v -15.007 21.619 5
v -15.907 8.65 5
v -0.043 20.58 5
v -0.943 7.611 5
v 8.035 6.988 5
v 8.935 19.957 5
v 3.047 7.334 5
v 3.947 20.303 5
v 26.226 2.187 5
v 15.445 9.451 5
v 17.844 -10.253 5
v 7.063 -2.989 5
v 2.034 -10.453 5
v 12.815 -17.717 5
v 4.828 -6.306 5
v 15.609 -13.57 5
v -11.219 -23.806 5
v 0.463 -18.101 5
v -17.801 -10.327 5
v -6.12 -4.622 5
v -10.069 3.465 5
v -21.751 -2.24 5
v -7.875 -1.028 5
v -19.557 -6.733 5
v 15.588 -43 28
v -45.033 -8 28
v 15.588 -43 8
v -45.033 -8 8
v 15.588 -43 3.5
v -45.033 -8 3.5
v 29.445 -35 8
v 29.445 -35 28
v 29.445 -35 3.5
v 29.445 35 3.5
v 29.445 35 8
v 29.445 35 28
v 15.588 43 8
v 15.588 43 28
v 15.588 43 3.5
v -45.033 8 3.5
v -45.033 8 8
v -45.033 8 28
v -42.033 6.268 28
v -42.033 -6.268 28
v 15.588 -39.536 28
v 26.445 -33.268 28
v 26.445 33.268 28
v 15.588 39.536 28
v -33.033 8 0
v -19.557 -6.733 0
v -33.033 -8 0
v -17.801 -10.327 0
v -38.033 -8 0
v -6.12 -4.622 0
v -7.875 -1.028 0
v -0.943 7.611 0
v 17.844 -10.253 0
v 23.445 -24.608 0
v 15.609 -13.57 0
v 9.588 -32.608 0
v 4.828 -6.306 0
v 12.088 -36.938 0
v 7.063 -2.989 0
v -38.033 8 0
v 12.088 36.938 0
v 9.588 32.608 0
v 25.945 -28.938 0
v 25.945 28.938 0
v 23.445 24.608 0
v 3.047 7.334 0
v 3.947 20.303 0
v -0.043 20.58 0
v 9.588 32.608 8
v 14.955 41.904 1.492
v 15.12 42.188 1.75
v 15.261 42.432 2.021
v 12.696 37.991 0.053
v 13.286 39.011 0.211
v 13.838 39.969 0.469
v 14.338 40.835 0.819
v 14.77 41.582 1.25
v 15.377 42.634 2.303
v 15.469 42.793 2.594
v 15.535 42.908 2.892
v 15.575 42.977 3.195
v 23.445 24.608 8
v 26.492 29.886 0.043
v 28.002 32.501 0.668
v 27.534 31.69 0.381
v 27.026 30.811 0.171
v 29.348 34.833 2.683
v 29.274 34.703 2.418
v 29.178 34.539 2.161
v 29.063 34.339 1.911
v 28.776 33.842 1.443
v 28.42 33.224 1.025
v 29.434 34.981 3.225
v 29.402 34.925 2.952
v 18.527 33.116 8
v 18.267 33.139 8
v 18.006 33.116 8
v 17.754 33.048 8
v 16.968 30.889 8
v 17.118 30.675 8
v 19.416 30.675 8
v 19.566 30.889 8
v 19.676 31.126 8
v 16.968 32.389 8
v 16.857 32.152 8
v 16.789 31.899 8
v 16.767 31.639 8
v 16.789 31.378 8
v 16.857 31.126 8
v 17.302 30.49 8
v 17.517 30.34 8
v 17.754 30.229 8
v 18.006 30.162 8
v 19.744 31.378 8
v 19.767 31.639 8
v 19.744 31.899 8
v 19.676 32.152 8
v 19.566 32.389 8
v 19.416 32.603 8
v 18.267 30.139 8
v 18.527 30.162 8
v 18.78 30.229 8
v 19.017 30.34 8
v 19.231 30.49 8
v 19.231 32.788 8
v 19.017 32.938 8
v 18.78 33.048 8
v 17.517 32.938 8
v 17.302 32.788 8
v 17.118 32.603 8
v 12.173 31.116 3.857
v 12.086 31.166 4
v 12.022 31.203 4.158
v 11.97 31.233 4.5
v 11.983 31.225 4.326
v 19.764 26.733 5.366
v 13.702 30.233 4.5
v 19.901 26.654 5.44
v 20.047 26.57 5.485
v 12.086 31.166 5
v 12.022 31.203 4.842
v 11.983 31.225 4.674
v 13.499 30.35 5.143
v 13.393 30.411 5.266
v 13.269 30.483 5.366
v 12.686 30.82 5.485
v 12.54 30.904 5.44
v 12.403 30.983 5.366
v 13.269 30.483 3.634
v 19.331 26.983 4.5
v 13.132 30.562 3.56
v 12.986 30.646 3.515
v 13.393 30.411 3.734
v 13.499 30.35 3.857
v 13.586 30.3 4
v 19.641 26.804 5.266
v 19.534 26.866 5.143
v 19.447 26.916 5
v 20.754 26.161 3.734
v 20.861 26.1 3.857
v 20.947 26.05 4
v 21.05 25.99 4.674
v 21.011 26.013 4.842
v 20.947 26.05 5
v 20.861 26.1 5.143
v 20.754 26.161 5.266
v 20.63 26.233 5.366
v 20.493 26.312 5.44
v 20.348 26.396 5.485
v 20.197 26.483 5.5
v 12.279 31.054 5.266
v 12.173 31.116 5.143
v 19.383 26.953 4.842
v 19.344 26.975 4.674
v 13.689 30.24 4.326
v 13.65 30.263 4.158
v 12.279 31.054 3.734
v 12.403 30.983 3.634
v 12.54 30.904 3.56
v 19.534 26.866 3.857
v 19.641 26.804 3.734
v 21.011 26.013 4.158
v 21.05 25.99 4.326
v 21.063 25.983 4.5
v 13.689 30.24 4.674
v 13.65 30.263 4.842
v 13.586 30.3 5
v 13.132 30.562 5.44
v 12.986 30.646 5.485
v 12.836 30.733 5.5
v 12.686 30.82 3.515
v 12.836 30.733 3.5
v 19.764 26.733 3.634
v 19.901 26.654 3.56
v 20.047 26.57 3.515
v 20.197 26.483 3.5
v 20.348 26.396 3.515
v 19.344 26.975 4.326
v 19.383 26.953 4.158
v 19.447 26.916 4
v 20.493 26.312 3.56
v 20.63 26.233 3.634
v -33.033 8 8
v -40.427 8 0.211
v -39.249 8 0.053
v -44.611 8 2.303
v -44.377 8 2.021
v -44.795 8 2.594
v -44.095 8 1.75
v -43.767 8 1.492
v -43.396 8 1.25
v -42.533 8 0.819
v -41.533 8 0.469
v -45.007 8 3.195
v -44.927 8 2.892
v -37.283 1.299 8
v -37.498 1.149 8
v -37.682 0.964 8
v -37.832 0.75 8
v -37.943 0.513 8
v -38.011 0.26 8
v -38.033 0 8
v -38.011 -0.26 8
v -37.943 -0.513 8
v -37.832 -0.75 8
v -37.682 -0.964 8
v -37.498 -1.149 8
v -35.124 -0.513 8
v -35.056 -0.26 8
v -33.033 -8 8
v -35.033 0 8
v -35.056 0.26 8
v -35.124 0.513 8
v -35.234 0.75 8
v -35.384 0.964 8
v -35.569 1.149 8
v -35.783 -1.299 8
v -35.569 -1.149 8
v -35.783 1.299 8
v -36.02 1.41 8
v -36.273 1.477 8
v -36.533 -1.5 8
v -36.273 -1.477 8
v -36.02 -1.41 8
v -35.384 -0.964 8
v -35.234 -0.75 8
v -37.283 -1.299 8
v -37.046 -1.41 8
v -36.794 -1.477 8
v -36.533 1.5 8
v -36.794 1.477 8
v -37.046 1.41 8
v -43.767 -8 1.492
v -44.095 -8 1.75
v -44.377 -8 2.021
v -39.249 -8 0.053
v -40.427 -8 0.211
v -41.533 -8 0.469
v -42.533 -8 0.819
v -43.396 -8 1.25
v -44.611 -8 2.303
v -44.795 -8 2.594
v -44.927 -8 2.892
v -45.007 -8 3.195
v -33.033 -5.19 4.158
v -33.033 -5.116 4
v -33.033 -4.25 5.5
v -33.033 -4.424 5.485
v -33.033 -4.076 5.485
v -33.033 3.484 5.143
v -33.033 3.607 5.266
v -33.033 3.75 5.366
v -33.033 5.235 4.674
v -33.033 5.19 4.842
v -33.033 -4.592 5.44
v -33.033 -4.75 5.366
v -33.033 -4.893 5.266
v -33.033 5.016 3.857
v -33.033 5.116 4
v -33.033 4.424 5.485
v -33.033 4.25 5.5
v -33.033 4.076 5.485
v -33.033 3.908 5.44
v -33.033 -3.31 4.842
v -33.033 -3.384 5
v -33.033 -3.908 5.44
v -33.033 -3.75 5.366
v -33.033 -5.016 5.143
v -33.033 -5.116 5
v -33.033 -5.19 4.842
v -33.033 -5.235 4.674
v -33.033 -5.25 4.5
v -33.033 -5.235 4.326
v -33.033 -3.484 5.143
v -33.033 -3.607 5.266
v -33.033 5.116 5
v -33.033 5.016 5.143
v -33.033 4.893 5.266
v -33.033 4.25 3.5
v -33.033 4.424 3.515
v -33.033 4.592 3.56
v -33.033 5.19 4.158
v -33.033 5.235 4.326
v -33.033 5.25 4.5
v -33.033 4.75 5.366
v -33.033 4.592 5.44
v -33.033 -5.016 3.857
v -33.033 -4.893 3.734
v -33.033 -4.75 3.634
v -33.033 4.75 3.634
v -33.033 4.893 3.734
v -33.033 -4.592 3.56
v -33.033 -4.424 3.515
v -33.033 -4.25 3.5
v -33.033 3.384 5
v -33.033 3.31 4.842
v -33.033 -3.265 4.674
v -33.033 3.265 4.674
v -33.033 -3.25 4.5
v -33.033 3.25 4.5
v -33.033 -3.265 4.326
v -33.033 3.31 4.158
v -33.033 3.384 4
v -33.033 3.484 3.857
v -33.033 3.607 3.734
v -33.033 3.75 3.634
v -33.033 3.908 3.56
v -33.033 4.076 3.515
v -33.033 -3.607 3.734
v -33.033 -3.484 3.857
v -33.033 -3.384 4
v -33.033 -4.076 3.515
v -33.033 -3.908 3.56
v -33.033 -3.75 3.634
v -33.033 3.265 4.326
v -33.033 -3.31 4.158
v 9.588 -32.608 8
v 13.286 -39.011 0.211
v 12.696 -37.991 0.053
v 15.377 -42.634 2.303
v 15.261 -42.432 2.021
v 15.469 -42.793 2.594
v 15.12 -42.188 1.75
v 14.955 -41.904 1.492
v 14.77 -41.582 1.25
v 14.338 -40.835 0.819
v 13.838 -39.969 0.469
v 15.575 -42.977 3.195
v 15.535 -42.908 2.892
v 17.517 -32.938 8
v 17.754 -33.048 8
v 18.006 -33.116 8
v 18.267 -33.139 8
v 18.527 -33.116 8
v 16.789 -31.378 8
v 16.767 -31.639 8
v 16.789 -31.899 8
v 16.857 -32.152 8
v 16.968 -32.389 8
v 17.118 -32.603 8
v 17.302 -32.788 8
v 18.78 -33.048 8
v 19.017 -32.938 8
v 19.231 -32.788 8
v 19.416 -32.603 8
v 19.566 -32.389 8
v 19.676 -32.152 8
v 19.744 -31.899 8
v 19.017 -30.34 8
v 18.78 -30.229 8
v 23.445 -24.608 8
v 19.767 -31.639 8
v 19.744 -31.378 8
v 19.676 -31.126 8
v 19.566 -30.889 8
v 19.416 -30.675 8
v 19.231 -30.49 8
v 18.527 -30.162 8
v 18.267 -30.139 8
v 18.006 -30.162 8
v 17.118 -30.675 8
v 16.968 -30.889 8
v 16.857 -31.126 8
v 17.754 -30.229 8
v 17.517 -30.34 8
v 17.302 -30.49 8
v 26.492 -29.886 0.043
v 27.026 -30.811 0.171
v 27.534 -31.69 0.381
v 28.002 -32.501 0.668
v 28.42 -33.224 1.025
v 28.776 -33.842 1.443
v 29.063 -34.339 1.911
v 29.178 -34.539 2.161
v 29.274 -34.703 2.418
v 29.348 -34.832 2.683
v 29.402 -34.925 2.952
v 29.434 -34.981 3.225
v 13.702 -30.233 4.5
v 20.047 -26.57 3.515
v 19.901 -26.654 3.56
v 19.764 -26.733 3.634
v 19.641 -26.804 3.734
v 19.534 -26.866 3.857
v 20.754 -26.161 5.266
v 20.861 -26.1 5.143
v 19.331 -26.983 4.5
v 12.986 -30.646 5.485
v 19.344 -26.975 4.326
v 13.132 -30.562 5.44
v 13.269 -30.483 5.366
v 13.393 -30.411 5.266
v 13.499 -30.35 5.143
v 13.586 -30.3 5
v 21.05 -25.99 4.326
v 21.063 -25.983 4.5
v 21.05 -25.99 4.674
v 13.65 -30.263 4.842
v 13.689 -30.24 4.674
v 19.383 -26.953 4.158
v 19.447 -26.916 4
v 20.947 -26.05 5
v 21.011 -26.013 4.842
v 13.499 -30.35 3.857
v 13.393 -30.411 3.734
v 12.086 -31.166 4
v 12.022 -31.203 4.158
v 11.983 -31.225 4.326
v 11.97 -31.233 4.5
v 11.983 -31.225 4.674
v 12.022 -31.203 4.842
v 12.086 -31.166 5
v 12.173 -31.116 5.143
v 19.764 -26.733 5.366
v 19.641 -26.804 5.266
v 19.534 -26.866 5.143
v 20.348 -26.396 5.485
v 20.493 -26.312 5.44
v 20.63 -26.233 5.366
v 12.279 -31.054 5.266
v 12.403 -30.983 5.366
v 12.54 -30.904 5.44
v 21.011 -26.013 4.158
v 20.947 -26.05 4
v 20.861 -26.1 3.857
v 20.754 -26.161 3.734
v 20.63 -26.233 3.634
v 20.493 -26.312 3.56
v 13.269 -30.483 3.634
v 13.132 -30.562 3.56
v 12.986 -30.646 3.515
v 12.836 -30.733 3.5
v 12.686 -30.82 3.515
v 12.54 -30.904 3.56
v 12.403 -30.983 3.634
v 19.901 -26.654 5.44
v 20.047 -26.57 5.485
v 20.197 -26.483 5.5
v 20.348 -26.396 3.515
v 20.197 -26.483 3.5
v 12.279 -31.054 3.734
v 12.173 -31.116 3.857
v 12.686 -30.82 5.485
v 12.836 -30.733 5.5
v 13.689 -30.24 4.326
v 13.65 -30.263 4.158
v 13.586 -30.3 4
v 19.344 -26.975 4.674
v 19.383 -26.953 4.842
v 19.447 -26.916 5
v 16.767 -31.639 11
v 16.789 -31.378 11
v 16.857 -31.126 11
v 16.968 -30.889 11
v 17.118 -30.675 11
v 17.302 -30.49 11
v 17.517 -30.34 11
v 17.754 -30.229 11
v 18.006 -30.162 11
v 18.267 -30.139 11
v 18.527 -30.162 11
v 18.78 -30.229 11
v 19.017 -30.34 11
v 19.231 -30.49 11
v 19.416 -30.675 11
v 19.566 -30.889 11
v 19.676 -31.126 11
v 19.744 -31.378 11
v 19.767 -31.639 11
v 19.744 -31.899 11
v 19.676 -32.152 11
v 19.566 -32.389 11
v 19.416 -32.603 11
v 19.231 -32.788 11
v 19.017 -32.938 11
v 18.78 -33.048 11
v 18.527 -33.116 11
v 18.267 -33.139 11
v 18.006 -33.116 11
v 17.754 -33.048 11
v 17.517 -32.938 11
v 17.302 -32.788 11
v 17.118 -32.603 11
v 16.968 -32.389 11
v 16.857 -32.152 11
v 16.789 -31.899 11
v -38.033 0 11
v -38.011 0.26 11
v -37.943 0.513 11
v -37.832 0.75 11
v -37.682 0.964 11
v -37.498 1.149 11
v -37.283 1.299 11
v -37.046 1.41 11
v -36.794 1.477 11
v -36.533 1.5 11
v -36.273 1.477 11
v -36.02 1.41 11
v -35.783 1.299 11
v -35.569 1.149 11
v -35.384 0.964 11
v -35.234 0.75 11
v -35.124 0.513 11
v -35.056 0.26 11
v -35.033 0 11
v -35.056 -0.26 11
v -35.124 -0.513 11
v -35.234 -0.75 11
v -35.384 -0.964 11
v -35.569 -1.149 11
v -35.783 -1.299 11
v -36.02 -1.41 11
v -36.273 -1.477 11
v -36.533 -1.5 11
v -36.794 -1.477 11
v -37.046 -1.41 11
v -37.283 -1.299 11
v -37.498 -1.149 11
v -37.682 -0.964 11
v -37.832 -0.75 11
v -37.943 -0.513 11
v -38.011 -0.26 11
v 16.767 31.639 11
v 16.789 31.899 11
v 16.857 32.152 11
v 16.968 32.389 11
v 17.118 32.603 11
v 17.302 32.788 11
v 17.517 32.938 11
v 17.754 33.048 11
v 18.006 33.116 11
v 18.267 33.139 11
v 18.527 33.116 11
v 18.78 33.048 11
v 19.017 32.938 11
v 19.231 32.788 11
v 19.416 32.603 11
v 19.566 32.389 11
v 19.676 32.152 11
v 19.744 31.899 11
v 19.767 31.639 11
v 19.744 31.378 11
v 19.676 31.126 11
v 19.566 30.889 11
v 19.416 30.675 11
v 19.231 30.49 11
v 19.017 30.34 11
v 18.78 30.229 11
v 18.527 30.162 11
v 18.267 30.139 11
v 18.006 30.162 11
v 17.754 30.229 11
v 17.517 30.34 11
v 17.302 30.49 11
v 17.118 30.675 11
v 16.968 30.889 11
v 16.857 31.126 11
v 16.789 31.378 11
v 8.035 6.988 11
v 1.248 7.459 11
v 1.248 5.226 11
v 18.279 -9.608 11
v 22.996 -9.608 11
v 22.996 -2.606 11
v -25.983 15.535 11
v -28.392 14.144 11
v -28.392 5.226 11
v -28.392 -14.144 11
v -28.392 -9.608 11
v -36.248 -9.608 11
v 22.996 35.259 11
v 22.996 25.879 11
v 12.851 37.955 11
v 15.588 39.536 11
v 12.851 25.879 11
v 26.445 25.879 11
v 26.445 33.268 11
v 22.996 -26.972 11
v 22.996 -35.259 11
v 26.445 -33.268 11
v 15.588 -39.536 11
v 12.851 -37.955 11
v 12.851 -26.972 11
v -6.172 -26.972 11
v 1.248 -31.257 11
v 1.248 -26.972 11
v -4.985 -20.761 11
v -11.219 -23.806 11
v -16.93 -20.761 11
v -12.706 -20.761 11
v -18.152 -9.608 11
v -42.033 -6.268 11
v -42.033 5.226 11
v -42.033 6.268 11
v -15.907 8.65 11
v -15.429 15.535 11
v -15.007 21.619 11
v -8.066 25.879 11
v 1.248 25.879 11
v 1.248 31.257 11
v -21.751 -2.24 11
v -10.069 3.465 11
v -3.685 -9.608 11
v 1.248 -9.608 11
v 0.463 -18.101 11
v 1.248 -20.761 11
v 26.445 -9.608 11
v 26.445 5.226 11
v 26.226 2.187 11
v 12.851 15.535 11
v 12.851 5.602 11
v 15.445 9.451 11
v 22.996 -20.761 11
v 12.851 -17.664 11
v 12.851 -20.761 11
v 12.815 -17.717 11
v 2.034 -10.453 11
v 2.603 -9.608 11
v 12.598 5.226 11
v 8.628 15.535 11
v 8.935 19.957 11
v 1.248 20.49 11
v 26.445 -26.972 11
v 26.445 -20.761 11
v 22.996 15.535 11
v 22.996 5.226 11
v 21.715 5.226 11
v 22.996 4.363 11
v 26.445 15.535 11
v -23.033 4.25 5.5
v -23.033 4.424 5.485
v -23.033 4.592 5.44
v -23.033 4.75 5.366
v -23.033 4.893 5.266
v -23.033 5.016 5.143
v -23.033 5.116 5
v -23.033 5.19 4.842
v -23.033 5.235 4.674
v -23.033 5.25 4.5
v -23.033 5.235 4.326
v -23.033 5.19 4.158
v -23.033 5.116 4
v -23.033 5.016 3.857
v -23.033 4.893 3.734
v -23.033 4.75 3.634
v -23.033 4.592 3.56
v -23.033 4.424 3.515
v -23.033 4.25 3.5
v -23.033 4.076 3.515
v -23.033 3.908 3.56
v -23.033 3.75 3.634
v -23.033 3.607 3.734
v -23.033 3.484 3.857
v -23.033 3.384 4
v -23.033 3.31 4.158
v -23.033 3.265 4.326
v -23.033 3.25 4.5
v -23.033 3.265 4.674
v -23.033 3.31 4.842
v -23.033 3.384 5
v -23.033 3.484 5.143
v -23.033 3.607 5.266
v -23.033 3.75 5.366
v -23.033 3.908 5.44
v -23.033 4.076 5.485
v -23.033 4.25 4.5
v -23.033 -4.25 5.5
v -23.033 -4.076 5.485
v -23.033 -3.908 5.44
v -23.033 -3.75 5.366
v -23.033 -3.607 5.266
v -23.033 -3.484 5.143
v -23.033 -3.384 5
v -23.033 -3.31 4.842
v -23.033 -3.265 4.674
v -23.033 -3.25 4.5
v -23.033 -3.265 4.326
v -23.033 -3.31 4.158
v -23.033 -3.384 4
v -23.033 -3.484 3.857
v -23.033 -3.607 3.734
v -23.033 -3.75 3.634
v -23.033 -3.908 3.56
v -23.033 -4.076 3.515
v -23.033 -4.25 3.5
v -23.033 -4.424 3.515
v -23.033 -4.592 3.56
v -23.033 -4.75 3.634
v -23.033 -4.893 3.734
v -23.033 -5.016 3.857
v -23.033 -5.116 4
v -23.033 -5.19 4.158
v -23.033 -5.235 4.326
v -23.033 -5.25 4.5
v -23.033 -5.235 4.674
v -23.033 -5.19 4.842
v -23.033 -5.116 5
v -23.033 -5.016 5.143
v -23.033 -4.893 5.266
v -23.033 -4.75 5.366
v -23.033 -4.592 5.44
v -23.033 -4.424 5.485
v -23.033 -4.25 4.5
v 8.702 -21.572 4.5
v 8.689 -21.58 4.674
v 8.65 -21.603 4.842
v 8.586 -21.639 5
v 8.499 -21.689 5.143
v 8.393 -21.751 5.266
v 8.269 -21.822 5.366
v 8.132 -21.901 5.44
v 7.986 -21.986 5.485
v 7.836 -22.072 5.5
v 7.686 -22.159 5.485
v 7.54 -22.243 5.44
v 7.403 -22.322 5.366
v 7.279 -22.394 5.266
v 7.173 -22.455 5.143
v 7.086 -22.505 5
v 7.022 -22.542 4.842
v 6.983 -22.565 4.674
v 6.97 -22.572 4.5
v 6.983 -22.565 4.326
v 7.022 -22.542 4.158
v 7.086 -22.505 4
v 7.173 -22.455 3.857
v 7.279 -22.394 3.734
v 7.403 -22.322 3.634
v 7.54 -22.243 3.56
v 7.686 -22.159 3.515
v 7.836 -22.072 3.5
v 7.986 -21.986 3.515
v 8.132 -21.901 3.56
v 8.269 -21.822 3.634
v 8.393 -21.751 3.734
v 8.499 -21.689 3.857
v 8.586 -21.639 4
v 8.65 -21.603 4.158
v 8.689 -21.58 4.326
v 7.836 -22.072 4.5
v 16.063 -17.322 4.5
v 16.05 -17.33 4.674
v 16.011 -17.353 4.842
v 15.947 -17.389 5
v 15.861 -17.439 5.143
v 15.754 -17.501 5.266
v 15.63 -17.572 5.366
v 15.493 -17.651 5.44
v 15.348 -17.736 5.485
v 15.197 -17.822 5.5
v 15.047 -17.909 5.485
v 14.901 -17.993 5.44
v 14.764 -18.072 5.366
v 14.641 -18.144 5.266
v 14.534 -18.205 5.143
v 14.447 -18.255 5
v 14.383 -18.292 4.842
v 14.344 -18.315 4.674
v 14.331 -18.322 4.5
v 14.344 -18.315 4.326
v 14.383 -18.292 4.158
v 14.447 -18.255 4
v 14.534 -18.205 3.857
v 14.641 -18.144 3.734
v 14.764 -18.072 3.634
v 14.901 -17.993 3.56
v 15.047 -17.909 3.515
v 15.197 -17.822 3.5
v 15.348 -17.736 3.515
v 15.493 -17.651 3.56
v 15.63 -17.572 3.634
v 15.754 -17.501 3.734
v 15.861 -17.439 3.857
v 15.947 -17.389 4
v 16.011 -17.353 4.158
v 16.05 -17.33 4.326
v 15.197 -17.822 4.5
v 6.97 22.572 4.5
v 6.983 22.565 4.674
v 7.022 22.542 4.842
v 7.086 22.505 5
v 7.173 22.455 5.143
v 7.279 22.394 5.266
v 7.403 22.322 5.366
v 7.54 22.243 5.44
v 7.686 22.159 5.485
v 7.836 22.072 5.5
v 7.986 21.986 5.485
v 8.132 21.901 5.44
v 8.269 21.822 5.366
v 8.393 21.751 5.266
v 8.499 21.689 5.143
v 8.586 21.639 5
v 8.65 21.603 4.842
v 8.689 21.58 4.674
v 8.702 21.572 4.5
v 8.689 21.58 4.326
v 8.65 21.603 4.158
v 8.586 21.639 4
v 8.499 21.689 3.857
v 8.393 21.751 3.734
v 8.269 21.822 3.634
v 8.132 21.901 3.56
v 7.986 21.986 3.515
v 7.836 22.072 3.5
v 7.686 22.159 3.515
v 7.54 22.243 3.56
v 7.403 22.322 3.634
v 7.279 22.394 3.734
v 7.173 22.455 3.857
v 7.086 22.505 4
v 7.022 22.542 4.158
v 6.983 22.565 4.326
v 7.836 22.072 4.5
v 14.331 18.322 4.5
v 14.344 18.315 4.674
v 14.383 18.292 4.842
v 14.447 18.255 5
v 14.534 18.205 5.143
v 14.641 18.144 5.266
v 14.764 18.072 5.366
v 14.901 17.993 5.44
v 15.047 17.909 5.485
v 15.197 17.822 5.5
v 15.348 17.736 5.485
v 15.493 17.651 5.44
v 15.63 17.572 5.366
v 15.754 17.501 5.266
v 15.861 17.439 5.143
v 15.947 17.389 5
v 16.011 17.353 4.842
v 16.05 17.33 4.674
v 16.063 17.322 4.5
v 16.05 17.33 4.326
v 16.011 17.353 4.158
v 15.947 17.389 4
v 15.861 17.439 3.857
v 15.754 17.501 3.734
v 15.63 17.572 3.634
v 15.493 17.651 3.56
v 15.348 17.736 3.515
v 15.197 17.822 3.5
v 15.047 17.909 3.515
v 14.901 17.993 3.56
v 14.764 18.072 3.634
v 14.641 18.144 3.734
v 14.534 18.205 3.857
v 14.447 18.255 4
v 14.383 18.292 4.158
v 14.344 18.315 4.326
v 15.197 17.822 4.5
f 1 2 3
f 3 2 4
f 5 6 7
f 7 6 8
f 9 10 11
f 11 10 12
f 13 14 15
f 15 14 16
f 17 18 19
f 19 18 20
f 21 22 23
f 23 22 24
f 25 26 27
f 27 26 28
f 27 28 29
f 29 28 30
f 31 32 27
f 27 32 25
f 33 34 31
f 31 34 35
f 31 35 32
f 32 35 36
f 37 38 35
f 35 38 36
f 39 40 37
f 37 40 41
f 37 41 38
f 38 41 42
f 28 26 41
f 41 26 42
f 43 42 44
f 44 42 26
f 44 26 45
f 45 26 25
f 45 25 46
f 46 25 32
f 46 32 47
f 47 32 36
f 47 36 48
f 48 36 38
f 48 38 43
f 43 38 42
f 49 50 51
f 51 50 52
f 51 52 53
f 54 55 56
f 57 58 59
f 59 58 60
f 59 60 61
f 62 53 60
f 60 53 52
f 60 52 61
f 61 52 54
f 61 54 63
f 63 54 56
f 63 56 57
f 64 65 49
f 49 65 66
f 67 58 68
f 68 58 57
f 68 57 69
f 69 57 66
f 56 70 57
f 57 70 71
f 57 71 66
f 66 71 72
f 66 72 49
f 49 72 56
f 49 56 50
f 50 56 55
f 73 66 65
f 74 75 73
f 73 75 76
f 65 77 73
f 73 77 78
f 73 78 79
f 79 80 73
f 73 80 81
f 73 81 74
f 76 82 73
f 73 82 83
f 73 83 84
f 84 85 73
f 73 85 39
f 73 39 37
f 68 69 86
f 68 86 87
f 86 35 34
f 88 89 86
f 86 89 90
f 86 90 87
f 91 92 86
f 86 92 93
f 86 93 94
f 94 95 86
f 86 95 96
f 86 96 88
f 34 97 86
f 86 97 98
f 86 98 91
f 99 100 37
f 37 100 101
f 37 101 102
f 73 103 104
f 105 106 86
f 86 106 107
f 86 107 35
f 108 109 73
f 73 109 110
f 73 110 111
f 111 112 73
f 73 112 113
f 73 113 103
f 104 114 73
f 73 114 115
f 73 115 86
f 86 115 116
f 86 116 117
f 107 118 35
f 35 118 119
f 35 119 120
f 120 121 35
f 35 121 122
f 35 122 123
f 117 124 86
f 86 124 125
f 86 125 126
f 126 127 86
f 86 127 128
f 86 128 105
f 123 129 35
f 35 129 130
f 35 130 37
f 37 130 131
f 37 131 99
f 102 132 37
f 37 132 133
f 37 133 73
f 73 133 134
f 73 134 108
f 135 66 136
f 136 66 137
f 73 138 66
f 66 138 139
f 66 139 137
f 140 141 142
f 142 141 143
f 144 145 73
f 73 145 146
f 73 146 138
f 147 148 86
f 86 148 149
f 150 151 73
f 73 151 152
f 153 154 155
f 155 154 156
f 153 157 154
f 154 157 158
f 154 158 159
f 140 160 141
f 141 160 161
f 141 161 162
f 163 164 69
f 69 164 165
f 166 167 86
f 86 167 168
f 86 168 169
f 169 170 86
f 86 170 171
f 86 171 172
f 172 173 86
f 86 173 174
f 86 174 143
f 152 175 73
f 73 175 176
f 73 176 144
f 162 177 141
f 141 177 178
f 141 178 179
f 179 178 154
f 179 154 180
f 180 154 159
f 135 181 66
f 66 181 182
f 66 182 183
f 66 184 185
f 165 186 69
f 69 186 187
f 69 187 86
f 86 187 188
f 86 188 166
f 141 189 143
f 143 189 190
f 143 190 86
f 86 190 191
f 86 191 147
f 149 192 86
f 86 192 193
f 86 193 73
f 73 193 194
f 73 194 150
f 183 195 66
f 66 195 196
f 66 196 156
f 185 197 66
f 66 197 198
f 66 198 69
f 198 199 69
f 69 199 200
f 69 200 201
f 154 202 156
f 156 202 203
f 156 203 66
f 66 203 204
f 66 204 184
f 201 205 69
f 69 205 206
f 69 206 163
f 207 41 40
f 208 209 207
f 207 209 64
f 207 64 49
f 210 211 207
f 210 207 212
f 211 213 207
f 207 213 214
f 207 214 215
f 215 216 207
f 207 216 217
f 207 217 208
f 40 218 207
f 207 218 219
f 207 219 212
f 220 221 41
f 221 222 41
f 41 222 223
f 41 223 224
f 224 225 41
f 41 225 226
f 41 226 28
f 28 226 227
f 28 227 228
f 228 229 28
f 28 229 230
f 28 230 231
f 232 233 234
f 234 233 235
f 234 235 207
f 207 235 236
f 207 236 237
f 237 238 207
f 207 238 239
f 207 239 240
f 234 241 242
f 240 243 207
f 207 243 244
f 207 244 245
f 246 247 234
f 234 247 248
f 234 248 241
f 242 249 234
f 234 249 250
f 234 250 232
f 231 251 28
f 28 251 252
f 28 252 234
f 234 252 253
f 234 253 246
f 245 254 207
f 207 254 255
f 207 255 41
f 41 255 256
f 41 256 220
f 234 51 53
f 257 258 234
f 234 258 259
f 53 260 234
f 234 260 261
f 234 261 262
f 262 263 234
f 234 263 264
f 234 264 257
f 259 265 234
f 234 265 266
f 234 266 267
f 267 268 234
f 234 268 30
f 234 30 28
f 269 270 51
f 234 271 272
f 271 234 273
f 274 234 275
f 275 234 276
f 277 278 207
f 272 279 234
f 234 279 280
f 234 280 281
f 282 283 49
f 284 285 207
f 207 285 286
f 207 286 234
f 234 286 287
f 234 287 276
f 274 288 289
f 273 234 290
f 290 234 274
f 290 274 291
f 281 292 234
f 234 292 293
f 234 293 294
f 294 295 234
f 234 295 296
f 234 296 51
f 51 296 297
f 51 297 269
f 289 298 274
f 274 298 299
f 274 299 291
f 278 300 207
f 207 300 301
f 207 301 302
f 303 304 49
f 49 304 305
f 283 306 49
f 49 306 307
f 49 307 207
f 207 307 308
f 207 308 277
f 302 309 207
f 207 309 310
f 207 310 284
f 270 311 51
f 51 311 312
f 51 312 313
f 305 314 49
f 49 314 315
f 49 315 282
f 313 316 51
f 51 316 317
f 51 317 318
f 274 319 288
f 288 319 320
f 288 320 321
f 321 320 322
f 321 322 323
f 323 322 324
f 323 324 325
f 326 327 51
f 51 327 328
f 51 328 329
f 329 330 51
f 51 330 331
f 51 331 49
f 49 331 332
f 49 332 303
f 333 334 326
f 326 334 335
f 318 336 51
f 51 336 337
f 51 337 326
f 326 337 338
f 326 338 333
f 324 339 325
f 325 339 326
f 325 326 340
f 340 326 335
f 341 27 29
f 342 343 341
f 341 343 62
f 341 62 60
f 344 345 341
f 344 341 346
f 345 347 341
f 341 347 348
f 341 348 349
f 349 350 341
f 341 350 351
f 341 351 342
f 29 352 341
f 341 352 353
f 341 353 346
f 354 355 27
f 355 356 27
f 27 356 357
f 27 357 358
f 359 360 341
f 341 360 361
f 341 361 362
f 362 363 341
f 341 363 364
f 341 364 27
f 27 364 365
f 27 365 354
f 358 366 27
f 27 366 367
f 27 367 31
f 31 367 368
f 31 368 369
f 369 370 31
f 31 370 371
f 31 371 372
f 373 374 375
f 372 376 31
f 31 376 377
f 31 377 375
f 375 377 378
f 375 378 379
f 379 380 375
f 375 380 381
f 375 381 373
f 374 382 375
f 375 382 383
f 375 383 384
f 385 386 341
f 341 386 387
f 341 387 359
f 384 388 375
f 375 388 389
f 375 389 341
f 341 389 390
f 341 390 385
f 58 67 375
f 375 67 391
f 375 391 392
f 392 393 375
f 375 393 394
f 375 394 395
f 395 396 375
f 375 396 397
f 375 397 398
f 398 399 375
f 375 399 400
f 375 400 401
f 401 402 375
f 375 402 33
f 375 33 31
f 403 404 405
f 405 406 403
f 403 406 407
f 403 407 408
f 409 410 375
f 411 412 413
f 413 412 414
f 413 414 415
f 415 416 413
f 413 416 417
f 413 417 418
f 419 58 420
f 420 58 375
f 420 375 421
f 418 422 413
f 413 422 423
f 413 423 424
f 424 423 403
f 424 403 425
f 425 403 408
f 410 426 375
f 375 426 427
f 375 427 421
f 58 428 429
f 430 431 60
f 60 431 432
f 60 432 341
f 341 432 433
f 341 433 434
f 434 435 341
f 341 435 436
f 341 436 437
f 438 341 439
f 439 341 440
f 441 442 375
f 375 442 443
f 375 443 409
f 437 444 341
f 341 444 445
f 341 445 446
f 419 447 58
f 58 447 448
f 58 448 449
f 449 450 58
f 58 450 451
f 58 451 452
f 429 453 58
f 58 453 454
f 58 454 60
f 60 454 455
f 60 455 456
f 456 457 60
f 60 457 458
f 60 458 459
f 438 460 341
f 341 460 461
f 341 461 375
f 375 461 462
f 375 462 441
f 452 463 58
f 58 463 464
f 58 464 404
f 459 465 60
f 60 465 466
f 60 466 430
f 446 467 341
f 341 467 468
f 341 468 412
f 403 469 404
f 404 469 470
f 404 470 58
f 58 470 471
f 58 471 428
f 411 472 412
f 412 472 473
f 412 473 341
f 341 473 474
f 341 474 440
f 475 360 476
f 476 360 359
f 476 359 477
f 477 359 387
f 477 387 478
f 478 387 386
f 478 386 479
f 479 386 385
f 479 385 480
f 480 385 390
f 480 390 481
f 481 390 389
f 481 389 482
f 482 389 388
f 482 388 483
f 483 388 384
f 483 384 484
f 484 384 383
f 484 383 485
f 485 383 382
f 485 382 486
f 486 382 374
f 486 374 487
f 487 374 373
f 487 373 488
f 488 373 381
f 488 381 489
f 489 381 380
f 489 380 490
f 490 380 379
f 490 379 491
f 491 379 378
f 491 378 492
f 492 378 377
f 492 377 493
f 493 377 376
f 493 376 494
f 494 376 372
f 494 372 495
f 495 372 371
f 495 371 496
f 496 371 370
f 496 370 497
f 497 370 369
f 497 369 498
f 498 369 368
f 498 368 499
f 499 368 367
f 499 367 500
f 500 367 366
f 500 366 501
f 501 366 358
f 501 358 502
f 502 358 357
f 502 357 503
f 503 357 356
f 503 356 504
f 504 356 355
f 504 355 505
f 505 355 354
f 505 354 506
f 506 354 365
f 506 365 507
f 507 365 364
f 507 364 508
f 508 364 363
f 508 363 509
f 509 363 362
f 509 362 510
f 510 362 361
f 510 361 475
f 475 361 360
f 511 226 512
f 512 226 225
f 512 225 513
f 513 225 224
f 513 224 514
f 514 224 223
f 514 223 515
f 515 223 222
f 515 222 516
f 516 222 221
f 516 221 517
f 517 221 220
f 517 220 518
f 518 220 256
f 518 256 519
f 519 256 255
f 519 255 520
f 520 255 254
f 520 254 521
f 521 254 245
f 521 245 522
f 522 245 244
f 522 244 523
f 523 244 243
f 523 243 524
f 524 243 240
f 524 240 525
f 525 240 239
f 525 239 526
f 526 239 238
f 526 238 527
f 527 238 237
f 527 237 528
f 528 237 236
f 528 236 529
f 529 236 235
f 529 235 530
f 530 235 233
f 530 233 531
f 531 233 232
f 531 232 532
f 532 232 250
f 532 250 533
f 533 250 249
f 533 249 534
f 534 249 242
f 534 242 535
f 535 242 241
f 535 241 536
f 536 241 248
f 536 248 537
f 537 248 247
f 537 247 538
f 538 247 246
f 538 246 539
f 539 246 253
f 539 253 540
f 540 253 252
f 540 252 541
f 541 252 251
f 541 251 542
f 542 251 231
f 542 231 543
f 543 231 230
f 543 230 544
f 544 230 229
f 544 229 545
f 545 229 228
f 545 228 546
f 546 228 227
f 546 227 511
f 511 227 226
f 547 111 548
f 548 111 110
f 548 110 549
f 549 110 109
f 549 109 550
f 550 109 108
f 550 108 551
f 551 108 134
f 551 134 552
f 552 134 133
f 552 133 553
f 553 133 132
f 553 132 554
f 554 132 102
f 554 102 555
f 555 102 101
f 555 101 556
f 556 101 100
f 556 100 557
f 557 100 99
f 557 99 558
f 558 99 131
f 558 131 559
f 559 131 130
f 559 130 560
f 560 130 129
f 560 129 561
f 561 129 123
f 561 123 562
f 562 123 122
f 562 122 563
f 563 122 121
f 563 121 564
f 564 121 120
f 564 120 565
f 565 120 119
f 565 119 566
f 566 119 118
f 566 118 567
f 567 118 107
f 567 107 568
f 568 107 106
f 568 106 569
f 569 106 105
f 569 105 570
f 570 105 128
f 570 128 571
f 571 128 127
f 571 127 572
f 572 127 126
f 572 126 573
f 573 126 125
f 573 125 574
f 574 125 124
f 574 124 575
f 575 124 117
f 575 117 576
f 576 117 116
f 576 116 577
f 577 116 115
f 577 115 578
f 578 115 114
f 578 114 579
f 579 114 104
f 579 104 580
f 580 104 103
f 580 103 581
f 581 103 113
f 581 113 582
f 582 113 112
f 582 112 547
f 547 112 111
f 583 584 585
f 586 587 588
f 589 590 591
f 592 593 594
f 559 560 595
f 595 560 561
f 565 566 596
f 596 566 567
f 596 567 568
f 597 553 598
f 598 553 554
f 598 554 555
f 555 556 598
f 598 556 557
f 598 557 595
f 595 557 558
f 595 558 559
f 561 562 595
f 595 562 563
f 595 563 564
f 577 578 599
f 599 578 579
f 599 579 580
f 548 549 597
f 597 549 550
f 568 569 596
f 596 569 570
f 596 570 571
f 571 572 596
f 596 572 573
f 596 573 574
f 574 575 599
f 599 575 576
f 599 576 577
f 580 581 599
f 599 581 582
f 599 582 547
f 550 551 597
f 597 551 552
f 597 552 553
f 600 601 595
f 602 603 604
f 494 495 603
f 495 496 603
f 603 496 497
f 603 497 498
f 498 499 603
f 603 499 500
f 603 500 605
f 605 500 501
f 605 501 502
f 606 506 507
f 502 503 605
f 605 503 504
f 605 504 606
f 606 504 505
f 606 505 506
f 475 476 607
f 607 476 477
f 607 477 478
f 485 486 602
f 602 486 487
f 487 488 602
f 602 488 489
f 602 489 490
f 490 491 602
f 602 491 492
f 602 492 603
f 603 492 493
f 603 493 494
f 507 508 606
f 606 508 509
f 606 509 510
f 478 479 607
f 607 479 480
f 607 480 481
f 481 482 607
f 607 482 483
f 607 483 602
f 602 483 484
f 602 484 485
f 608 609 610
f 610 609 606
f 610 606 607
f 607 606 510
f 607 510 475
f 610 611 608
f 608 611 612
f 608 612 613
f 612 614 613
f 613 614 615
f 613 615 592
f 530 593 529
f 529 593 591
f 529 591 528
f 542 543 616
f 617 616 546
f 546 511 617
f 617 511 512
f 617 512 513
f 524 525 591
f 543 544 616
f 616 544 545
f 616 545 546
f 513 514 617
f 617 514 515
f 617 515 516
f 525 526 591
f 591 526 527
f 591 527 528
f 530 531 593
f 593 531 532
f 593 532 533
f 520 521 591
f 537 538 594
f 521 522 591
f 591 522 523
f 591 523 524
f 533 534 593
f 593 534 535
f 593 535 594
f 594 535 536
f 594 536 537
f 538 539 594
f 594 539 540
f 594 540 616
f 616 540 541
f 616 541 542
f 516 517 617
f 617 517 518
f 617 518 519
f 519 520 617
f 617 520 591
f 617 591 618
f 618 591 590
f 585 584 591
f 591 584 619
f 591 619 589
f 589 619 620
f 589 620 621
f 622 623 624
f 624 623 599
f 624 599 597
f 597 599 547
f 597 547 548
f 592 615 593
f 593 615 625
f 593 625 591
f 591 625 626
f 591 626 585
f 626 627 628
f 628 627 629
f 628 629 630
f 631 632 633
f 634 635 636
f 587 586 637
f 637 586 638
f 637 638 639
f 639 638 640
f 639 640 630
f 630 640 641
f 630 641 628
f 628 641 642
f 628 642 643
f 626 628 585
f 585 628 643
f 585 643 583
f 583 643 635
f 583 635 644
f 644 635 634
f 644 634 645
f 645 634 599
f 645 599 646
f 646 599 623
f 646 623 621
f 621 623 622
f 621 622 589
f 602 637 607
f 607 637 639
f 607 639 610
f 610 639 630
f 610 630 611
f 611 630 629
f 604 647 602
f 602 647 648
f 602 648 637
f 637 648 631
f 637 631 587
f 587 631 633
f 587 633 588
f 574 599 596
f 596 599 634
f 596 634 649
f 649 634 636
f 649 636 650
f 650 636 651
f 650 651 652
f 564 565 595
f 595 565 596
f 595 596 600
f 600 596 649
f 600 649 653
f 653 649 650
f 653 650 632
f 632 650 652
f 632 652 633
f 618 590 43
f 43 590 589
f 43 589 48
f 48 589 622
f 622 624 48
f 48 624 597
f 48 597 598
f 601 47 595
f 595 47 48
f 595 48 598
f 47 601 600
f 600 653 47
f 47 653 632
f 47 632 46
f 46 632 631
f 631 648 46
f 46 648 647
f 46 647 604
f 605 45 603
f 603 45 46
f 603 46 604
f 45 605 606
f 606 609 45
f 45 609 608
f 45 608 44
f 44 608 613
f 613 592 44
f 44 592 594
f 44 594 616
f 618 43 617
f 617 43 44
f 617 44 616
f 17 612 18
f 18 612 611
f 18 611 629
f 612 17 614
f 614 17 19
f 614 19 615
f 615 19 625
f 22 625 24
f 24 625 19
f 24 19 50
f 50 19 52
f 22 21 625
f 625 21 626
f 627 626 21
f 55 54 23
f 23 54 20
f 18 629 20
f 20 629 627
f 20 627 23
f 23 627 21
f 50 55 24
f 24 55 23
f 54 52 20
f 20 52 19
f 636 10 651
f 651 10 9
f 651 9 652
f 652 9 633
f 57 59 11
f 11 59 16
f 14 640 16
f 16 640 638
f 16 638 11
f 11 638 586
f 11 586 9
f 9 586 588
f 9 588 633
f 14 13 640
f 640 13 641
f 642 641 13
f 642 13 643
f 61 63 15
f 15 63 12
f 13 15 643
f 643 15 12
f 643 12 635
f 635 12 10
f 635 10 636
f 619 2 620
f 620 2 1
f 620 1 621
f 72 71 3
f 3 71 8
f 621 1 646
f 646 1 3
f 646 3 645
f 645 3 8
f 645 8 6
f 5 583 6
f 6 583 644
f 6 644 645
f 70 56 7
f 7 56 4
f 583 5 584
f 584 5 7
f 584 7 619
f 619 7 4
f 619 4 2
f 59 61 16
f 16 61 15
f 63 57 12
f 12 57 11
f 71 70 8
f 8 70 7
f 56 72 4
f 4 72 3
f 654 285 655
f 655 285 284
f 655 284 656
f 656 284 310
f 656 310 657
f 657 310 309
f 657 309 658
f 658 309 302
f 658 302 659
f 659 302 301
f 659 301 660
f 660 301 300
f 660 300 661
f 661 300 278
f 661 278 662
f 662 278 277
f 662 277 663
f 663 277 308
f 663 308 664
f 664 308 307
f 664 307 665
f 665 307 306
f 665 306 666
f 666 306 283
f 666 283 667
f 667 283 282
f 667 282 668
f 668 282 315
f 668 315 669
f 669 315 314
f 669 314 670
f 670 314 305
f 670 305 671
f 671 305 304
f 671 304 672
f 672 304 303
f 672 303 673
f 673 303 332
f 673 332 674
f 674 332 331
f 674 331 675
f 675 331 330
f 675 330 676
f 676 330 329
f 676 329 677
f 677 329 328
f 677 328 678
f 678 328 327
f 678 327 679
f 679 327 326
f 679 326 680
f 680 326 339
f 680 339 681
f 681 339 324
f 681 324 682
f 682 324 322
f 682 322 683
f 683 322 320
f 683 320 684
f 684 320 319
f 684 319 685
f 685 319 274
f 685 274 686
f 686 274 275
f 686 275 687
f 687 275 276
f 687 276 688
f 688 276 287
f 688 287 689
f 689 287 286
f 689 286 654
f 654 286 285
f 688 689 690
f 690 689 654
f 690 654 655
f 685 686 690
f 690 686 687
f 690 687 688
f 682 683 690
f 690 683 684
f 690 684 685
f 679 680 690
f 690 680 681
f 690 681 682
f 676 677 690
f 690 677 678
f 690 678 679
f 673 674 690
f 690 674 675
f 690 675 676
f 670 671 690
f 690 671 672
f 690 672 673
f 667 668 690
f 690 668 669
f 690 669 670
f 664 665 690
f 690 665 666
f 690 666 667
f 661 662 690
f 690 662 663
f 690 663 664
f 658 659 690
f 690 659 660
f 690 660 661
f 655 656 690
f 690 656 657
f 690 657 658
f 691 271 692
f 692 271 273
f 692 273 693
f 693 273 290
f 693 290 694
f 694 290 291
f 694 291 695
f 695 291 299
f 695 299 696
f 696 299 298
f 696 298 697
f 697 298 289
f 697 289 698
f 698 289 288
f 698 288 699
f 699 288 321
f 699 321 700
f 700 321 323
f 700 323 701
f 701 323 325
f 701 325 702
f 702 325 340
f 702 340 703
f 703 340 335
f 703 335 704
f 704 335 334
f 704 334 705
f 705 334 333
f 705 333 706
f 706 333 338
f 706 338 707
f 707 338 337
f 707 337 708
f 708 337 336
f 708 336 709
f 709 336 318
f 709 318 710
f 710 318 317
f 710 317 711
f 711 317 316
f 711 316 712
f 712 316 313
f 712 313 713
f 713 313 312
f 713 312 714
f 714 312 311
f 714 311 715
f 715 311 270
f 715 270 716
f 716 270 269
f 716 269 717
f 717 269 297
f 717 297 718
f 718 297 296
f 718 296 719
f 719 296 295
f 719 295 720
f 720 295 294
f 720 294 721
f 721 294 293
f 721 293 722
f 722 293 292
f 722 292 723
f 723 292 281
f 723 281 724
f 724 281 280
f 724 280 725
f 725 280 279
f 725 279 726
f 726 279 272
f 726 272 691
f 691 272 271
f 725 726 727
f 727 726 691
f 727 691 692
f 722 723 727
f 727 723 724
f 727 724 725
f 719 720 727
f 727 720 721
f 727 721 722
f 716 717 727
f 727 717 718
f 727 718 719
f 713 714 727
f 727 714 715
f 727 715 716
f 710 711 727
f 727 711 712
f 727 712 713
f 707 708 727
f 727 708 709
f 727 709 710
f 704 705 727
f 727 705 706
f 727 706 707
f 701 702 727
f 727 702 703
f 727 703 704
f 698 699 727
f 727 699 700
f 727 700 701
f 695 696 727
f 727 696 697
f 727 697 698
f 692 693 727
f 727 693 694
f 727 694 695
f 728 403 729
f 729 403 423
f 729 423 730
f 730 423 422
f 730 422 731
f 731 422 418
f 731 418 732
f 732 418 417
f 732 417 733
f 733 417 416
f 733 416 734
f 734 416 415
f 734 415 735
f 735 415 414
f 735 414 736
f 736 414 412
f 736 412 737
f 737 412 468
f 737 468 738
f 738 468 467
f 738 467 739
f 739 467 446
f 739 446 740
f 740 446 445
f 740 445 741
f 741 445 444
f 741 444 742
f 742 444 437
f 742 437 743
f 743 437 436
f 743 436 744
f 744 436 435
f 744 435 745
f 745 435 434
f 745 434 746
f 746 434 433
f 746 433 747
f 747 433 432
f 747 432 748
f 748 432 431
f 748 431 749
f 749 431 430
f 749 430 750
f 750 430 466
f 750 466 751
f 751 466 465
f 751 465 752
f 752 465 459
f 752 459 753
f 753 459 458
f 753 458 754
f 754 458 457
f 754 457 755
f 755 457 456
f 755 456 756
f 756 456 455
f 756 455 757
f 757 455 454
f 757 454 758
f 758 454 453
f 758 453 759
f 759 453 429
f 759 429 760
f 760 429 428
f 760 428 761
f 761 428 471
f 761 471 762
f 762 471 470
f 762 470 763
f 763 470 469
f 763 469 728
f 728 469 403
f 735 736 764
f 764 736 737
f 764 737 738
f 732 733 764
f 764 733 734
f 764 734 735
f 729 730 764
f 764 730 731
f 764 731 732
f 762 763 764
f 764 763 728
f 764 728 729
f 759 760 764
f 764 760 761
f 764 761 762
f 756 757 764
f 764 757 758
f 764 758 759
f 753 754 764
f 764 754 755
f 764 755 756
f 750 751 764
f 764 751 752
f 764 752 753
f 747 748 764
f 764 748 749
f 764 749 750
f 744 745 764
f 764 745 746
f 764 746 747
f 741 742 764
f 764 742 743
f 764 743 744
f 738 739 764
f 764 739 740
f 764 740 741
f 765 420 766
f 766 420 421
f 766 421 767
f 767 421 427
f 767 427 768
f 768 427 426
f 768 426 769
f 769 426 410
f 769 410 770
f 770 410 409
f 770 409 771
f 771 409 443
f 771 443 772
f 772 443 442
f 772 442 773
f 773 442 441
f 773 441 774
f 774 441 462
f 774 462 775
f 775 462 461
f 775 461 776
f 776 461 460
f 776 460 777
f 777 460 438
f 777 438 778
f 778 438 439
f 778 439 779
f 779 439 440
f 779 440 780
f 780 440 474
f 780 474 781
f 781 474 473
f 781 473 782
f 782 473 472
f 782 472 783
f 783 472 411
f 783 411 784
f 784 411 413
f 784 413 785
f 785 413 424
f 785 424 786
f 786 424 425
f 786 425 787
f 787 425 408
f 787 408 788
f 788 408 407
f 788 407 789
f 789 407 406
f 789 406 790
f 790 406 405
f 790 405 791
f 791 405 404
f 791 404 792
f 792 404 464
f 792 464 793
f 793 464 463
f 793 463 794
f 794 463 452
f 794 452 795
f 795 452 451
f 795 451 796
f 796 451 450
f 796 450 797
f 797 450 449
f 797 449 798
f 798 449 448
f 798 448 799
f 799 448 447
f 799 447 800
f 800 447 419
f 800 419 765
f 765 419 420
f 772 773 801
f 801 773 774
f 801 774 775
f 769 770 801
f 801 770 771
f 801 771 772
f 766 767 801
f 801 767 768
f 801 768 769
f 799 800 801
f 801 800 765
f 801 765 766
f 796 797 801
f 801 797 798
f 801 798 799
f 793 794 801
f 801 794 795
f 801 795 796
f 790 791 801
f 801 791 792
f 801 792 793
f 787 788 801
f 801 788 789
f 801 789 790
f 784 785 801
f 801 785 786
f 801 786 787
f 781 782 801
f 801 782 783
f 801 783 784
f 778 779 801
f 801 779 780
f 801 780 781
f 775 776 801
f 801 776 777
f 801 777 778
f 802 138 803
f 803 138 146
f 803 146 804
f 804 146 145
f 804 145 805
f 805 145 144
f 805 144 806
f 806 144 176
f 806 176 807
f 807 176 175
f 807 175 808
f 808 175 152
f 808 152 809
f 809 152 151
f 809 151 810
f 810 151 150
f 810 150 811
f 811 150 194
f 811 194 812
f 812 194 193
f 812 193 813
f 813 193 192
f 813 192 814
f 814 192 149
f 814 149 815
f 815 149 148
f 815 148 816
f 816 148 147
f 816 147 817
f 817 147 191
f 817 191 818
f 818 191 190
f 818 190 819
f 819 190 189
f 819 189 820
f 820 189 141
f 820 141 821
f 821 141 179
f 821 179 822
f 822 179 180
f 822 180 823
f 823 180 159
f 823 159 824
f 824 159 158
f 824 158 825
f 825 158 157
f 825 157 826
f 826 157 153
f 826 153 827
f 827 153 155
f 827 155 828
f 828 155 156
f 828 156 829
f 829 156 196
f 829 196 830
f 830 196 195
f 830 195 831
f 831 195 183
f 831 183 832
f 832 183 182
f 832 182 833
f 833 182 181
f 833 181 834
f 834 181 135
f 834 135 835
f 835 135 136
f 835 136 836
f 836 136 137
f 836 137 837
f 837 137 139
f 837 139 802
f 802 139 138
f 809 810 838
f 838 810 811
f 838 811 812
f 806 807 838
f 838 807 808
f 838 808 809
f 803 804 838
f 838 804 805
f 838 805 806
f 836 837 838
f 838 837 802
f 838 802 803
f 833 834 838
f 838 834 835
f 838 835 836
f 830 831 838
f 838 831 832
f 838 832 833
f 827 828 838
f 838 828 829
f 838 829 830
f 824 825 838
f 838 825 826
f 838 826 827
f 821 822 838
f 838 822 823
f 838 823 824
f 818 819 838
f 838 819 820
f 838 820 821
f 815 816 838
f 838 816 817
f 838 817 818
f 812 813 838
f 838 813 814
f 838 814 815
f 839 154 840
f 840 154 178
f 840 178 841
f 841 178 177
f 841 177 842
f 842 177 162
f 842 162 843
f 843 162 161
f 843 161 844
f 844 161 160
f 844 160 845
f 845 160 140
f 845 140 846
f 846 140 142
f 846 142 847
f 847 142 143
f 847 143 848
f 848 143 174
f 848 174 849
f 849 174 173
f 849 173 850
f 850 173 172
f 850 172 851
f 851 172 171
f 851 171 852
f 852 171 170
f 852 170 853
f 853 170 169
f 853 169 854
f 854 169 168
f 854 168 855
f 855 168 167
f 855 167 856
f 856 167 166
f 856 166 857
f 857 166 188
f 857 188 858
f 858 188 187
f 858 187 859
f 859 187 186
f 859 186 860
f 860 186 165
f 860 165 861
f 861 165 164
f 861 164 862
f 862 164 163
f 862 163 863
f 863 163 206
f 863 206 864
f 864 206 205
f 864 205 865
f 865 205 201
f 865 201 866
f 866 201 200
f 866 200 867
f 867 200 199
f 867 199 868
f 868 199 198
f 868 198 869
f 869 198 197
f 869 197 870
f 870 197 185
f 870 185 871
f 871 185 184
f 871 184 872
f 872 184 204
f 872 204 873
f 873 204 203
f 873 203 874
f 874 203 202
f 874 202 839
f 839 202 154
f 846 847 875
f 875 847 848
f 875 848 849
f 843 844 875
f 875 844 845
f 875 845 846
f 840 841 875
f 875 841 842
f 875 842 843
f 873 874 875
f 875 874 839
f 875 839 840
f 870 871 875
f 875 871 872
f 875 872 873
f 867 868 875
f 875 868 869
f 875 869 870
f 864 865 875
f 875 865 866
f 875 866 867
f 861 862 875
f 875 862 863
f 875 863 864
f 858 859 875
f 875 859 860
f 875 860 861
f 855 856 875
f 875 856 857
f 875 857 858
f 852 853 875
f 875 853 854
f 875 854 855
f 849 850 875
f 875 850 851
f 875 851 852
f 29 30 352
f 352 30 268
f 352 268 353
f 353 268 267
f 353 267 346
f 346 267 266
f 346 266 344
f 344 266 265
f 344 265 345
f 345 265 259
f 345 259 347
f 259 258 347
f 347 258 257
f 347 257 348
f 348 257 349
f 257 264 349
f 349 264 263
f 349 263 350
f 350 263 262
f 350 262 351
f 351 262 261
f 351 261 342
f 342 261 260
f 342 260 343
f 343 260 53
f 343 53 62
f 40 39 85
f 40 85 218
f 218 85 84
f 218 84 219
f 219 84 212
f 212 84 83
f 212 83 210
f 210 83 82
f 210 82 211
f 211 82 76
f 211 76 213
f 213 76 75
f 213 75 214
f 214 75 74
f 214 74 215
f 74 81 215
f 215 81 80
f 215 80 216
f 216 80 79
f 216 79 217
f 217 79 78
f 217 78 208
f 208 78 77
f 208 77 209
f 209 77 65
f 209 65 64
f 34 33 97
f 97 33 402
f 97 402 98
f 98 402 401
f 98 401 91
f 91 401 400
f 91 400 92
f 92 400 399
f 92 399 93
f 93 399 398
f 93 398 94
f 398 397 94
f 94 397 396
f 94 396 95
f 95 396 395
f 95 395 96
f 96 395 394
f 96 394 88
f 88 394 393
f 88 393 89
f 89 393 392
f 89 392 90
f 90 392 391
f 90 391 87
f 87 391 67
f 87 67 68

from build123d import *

# Parameters (mm, degrees)
BOSS_EXTRUDE1_DEPTH = 28
SKETCH3_W           = 16
SKETCH3_H           = 8
CUT_EXTRUDE1_DEPTH  = 12
SKETCH4_W           = 8
SKETCH4_H           = 16
CUT_EXTRUDE2_DEPTH  = 12
SKETCH5_W           = 16
SKETCH5_H           = 8
CUT_EXTRUDE3_DEPTH  = 12
SKETCH6_R           = 1.5
CUT_EXTRUDE4_DEPTH  = 66.398776747
CUT_EXTRUDE5_DEPTH  = 17
CUT_EXTRUDE6_DEPTH  = 6
CUT_EXTRUDE7_DEPTH  = 67.377707101
CIRPATTERN1_COUNT   = 3
SKETCH11_R          = 1
CUT_EXTRUDE8_DEPTH  = 10
CIRPATTERN2_COUNT   = 3
FILLET1_R           = 3.5


with BuildPart() as part:
    # Sketch1 → Boss-Extrude1 (new body)
    with BuildSketch(Plane.XY):
        Polygon((-45.033320997, -8), (-45.033320997, 8), (15.588457268, 43), (29.444863729, 35), (29.444863729, -35), (15.588457268, -43), align=None)
    extrude(amount=BOSS_EXTRUDE1_DEPTH)

    # Sketch3 → Cut-Extrude1 (cut)
    with BuildSketch(Plane(origin=(22.516660498, 39, 0), x_dir=(0.8660254037844403, -0.49999999999999717, 0), z_dir=(0.49999999999999717, 0.8660254037844403, 0))):
        with Locations((0, -4)):
            Rectangle(SKETCH3_W, SKETCH3_H)
    extrude(amount=-CUT_EXTRUDE1_DEPTH, mode=Mode.SUBTRACT)

    # Sketch4 → Cut-Extrude2 (cut)
    with BuildSketch(Plane.ZY.offset(45.033320997)):
        with Locations((4, 0)):
            Rectangle(SKETCH4_W, SKETCH4_H)
    extrude(amount=-CUT_EXTRUDE2_DEPTH, mode=Mode.SUBTRACT)

    # Sketch5 → Cut-Extrude3 (cut)
    with BuildSketch(Plane(origin=(22.516660498, -39, 0), x_dir=(0.8660254037844353, 0.5000000000000059, 0), z_dir=(0.5000000000000059, -0.8660254037844353, 0))):
        with Locations((0, 4)):
            Rectangle(SKETCH5_W, SKETCH5_H)
    extrude(amount=-CUT_EXTRUDE3_DEPTH, mode=Mode.SUBTRACT)

    # Sketch6 → Cut-Extrude4 (cut, through all)
    with BuildSketch(Plane(origin=(0, 0, 8), x_dir=(-1, 0, 0), z_dir=(0, 0, -1))):
        with Locations((-18.266660498, -31.638784068)):
            Circle(SKETCH6_R)
        with Locations((-18.266660498, 31.638784068)):
            Circle(SKETCH6_R)
        with Locations((36.533320997, 0)):
            Circle(SKETCH6_R)
    extrude(amount=-CUT_EXTRUDE4_DEPTH, mode=Mode.SUBTRACT)

    # Sketch7 → Cut-Extrude5 (cut)
    with BuildSketch(Plane.XY.offset(28)):
        Polygon((-42.033320997, -6.267949192), (-42.033320997, 6.267949192), (15.588457268, 39.535898385), (26.444863729, 33.267949192), (26.444863729, -33.267949192), (15.588457268, -39.535898385), align=None)
    extrude(amount=-CUT_EXTRUDE5_DEPTH, mode=Mode.SUBTRACT)

    # Sketch8 → Cut-Extrude6 (cut)
    with BuildSketch(Plane.XY.offset(11)):
        Polygon((-11.21880666, -23.805784253), (-21.750841765, -2.24015798), (-10.069460868, 3.464694369), (0.462574238, -18.100931904), align=None)
    cut_extrude6 = extrude(amount=-CUT_EXTRUDE6_DEPTH, mode=Mode.SUBTRACT)

    # Sketch9 → Cut-Extrude7 (cut, through all)
    with BuildSketch(Plane.XY.offset(5)):
        Polygon((-19.556667785, -6.732996787), (-7.875286887, -1.028144438), (-6.119947703, -4.622415484), (-17.801328601, -10.327267832), align=None)
    cut_extrude7 = extrude(amount=-CUT_EXTRUDE7_DEPTH, mode=Mode.SUBTRACT)

    # CirPattern1: Cut-Extrude6, Cut-Extrude7 ×3 about axis
    cirpattern1_axis = Axis((0, 0, 0), (0, 0, 1))
    add([cut_extrude6.rotate(cirpattern1_axis, i * 360 / CIRPATTERN1_COUNT) for i in range(1, CIRPATTERN1_COUNT)], mode=Mode.SUBTRACT)
    add([cut_extrude7.rotate(cirpattern1_axis, i * 360 / CIRPATTERN1_COUNT) for i in range(1, CIRPATTERN1_COUNT)], mode=Mode.SUBTRACT)

    # Sketch11 → Cut-Extrude8 (cut)
    with BuildSketch(Plane.ZY.offset(33.033320997)):
        with Locations((4.5, 4.25)):
            Circle(SKETCH11_R)
        with Locations((4.5, -4.25)):
            Circle(SKETCH11_R)
    cut_extrude8 = extrude(amount=-CUT_EXTRUDE8_DEPTH, mode=Mode.SUBTRACT)

    # CirPattern2: Cut-Extrude8 ×3 about axis
    cirpattern2_axis = Axis((0, 0, 0), (0, 0, 1))
    for i in range(1, CIRPATTERN2_COUNT):
        add(cut_extrude8.rotate(cirpattern2_axis, i * 360 / CIRPATTERN2_COUNT), mode=Mode.SUBTRACT)

    # Fillet1
    fillet1_edges = [part.edges().sort_by_distance(p)[0] for p in [
        (-14.722431864, -25.5, 0),
        (-14.722431864, 25.5, 0),
        (29.444863729, 0, 0),
    ]]
    fillet(fillet1_edges, radius=FILLET1_R)


solid = part.part
